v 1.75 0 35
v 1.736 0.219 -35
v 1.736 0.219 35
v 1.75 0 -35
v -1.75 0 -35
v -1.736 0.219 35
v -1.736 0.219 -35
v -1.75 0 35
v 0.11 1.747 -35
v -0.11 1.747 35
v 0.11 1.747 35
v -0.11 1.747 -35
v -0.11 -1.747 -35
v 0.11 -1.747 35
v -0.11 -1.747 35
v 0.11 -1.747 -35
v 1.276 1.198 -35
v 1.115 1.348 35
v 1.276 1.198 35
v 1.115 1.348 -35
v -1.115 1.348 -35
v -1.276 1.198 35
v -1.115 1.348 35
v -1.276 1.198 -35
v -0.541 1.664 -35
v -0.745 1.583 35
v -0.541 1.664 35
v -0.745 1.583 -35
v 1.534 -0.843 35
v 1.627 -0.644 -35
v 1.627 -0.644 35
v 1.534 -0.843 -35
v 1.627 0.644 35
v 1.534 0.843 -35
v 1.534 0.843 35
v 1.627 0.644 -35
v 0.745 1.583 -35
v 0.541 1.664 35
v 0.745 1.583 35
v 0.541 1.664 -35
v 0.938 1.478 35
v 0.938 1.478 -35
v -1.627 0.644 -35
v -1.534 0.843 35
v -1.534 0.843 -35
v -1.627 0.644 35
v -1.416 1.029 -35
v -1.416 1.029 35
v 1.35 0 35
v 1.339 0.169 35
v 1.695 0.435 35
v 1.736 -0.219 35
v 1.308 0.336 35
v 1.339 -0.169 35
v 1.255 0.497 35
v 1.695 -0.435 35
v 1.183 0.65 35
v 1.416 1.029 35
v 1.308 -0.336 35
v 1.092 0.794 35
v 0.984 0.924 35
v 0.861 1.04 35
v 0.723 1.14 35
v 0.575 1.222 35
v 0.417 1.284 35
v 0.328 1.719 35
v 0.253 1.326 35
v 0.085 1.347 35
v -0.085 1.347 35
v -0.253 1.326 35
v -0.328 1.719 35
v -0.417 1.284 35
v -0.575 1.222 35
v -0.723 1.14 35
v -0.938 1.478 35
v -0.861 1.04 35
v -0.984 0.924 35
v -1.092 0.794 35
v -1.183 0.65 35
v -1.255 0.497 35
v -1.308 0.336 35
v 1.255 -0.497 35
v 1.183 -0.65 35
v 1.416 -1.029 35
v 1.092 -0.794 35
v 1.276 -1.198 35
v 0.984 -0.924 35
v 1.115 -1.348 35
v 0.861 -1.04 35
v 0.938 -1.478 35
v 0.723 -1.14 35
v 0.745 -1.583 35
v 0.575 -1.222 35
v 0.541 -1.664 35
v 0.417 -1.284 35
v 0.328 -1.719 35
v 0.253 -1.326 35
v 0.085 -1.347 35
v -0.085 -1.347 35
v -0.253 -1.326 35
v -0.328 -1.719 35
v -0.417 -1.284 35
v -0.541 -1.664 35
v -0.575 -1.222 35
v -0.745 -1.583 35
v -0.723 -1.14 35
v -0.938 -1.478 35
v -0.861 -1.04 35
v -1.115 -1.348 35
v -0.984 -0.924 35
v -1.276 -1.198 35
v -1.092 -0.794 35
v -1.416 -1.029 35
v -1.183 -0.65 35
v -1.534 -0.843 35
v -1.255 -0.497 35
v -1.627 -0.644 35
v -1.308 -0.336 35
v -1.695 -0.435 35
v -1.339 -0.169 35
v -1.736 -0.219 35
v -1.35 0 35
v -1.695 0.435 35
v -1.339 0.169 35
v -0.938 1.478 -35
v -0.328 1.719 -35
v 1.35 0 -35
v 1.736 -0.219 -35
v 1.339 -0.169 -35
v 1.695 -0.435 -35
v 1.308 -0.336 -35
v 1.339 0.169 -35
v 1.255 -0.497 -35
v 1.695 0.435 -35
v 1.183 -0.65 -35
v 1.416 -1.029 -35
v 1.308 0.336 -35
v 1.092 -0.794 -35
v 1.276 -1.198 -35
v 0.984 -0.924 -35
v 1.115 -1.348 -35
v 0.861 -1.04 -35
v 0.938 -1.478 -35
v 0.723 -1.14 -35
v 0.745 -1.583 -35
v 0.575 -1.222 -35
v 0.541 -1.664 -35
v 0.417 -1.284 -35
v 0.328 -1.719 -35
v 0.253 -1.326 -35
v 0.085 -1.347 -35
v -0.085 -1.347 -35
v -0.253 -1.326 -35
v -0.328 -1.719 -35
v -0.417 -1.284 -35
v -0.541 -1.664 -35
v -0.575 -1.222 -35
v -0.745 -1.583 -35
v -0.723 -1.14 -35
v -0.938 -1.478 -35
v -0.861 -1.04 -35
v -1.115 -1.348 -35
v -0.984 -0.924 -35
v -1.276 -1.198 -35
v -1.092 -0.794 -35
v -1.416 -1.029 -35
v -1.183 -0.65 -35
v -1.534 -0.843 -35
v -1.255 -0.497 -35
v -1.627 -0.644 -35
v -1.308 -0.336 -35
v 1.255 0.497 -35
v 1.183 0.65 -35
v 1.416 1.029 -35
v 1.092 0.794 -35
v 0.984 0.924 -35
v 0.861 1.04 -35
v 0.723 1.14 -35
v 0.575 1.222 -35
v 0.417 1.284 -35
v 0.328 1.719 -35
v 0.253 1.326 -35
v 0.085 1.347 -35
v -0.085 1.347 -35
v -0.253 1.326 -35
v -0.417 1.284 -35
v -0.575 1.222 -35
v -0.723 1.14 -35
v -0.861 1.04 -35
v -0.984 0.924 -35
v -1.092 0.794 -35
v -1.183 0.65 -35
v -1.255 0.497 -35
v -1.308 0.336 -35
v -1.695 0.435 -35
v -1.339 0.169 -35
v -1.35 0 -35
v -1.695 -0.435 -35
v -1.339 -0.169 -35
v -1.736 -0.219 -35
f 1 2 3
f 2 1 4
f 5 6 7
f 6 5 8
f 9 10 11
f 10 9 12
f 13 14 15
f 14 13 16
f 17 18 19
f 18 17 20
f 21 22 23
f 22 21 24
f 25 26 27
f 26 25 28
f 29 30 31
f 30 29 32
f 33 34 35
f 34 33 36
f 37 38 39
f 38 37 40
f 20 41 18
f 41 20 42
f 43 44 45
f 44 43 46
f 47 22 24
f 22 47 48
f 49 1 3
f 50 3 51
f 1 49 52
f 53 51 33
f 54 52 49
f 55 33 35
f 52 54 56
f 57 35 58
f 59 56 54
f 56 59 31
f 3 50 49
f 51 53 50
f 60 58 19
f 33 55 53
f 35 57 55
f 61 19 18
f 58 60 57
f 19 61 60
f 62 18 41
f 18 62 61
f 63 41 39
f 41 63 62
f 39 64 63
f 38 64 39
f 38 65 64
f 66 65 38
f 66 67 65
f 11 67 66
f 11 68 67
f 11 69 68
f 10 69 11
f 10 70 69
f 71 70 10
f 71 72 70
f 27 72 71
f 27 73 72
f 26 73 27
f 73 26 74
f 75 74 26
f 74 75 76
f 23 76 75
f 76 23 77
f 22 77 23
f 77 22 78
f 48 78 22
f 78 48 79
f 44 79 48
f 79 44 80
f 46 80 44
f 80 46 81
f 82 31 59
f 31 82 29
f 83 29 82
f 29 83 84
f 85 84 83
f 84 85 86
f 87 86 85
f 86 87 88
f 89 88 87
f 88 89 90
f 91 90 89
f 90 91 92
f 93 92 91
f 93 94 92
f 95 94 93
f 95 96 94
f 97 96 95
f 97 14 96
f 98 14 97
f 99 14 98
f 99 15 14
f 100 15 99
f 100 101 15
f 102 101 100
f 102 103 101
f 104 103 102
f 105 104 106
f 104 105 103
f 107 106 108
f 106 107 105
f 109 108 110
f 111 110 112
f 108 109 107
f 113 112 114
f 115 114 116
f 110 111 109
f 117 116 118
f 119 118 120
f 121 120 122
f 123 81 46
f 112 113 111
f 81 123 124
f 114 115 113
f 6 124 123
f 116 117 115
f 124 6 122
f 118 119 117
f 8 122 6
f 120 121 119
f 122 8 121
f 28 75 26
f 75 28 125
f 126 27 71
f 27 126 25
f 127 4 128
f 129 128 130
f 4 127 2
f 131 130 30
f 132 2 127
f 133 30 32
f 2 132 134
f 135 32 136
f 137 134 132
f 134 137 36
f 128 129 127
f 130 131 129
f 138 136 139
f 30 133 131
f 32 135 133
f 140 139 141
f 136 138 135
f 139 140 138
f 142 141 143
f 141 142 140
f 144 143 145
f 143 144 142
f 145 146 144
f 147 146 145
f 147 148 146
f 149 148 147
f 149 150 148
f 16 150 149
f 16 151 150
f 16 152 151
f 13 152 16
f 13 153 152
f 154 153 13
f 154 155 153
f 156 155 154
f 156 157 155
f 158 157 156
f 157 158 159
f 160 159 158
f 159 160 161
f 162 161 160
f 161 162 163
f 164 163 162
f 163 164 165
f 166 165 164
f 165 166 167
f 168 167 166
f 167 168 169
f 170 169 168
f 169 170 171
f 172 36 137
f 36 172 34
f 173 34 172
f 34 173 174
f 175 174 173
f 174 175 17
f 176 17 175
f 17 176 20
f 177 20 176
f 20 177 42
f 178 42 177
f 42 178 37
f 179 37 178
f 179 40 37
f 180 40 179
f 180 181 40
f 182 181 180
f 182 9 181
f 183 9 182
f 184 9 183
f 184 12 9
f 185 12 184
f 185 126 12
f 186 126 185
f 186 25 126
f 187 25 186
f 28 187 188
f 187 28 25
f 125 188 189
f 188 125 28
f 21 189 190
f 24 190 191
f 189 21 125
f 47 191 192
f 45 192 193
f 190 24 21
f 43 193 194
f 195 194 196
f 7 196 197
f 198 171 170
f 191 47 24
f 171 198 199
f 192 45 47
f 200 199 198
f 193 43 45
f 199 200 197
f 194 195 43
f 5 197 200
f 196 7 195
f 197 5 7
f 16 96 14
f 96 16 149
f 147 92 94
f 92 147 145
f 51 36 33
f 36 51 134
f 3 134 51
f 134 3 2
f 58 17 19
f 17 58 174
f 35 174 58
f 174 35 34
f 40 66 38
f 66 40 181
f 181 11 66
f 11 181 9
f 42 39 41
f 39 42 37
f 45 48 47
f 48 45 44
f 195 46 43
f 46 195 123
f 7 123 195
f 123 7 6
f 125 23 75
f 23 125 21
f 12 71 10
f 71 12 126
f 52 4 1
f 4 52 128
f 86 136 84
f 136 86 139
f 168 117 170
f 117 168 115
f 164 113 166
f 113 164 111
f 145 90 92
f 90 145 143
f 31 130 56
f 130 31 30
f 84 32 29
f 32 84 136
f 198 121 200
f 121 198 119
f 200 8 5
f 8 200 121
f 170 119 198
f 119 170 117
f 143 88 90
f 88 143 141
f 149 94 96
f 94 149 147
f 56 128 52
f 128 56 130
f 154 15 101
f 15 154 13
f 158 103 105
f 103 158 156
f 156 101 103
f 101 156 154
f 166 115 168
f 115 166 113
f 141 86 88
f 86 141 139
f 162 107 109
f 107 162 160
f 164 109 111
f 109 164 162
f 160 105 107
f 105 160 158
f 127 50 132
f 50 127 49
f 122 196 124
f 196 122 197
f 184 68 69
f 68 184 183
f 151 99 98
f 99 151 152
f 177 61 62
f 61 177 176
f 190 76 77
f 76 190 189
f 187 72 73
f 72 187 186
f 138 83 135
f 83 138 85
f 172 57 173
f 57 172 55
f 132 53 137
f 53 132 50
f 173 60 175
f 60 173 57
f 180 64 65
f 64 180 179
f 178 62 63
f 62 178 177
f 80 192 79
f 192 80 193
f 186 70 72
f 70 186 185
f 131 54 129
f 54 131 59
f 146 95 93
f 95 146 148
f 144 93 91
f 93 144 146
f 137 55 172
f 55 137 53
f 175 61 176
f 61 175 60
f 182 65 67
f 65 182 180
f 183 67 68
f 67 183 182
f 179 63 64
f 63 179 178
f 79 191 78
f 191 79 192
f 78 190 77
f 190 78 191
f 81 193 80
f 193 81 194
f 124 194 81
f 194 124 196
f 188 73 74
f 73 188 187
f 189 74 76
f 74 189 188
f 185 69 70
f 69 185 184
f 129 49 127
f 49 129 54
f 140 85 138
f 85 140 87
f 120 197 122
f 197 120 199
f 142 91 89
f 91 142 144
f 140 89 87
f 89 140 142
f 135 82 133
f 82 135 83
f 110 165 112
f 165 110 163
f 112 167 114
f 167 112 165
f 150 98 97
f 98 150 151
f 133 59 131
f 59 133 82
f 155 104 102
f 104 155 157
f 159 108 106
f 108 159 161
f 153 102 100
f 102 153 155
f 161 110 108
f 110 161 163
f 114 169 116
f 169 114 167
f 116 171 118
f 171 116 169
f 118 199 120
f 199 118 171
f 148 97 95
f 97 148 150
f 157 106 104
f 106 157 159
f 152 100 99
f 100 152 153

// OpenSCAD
$fn = 50;


difference() {
	union() {
		translate(v = [0, 0, -35.0000000000]) {
			cylinder(h = 70, r = 1.7500000000);
		}
	}
	union() {
		translate(v = [0, 0, -100.0000000000]) {
			cylinder(h = 200, r = 1.3500000000);
		}
	}
}
